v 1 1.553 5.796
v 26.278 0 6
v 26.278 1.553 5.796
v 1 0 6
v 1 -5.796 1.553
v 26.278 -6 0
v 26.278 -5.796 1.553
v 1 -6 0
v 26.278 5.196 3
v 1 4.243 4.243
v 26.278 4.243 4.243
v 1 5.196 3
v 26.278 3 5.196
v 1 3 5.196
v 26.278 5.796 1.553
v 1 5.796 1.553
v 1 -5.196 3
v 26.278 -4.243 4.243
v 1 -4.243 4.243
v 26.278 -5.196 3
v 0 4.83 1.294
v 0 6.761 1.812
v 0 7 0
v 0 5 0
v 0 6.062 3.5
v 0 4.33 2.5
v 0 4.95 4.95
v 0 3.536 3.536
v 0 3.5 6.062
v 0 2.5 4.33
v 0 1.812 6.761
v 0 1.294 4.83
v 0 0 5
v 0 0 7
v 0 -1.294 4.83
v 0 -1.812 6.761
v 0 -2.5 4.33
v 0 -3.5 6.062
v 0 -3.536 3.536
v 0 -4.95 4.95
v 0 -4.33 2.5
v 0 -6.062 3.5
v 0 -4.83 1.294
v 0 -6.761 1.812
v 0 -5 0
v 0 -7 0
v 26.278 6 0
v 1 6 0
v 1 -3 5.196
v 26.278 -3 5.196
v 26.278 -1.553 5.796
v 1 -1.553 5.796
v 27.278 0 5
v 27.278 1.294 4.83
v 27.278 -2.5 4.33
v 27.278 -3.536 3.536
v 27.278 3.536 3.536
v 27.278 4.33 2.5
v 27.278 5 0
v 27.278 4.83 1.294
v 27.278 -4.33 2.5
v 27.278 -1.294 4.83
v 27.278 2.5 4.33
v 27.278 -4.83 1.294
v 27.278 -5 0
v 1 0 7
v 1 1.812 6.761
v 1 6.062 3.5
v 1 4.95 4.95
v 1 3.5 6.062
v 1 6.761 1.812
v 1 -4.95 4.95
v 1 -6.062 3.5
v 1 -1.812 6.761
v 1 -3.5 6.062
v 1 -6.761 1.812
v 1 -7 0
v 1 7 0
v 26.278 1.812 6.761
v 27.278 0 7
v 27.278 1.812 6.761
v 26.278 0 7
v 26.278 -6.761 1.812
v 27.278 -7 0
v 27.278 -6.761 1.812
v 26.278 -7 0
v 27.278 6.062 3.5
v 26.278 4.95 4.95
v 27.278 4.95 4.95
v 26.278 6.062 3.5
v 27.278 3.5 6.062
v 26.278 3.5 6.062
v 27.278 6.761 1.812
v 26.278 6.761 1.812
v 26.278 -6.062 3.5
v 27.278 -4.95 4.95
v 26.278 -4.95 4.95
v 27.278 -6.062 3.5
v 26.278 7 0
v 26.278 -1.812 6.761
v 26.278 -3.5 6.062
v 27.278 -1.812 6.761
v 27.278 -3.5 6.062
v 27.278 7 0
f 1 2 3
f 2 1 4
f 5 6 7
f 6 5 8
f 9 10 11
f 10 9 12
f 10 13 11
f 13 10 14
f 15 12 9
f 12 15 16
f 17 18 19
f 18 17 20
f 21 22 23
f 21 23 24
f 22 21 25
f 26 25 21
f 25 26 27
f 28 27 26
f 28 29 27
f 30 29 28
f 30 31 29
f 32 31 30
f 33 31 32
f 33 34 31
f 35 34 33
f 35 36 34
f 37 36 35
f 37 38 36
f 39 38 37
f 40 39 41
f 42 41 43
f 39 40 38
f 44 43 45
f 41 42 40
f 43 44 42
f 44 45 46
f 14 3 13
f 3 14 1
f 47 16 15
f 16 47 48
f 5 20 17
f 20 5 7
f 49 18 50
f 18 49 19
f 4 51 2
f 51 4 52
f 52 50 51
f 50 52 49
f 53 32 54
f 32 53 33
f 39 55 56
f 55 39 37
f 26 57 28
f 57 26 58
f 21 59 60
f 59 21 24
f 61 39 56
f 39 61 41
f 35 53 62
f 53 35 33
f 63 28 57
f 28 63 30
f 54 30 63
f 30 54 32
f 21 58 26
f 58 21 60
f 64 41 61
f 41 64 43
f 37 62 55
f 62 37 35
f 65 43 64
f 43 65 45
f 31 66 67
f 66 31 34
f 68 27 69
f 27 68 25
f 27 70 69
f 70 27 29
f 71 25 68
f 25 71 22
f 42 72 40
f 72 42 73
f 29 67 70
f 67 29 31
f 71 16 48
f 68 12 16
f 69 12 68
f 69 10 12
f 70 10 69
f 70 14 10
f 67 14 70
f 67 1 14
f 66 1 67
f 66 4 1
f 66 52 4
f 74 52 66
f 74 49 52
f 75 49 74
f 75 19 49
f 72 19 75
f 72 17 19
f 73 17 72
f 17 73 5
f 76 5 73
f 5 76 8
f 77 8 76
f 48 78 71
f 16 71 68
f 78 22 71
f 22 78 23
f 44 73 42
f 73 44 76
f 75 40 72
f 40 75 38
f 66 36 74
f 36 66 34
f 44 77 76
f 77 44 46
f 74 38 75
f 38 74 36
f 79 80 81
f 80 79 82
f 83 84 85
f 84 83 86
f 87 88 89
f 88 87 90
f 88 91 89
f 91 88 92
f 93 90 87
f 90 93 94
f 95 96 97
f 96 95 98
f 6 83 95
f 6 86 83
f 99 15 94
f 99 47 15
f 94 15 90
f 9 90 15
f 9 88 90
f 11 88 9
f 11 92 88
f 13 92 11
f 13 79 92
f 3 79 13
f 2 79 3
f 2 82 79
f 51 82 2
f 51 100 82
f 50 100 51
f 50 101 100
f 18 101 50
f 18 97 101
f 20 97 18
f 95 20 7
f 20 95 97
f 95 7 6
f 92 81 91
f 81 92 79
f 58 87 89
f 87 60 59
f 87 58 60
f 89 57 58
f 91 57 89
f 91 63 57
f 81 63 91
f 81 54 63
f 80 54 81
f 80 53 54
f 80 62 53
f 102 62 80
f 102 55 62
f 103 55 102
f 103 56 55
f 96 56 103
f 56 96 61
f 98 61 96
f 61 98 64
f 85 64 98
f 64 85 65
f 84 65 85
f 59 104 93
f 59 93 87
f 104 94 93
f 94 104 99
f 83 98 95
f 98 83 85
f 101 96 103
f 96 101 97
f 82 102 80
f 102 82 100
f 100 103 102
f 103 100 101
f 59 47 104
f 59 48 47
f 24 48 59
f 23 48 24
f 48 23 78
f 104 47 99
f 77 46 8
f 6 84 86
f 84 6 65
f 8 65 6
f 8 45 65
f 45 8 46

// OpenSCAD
// file: ../build_environments.scad
// build_environments.scad: modules to build level sections
//

module pool(diameter=10.0, wall_height=2.0, step_width=3.0, connections=[])
{
    difference() {
        union() {
        difference() {
            cylinder(h=0.5,r1=diameter+step_width,r2=diameter+step_width,$fn=48);
            translate([0,0,-0.1])
                cylinder(h=0.7,r1=diameter,r2=diameter,$fn=48);
        }
        difference() {
            cylinder(h=wall_height,r1=diameter+step_width+1.0,r2=diameter+step_width+1.0,$fn=48);
            translate([0,0,-0.1])
                cylinder(h=wall_height+0.2,r1=diameter+step_width,r2=diameter+step_width,$fn=48);
        }
        }
    
        for (c = connections)
        {
            rotate([0,90,0]) {
                angle = atan2(c[1],c[0]);
                rotate([-angle,0,0]) {
                    cylinder(h=diameter+5.0,r1=c[2],r2=c[2],$fn=48);
                }
            }
        }
    }
}

module straight(length=10.0, width=2.0, dy1=0.0, dy2=0.0, dz=0.0)
{
    dims = [0, 0, 0, 0, 0, (dz/length)];
    matrix = [
        [ 1, dims[0], dims[1], 0 ],
        [ dims[2], 1, dims[4], 0 ],
        [ dims[5], dims[3], 1, 0 ],
        [ 0, 0, 0, 1 ]
    ];
    multmatrix(matrix)
    difference() {
        translate([dy1,0,0])
        union() {
            rotate([0,90,0]) {
                difference() {
                    cylinder(h=(length-dy1-dy2),r1=width+1.0,r2=width+1.0,$fn=24);
                    translate([0,0,-0.1])
                        cylinder(h=(length-dy1-dy2+0.2),r1=width,r2=width,$fn=24);
                }
                difference() {
                    cylinder(h=1.0,r1=width+2.0,r2=width+2.0,$fn=24);
                    translate([0,0,-0.1])
                        cylinder(h=1.2,r1=width,r2=width,$fn=24);
                }
                translate([0,0,(length-dy1-dy2)-1.0]) {
                    difference() {
                        cylinder(h=1.0,r1=width+2.0,r2=width+2.0,$fn=24);
                        translate([0,0,-0.1])
                            cylinder(h=1.2,r1=width,r2=width,$fn=24);
                    }
                }
            }
        }
        translate([0,0,-(2*width+4.0)/2])
            cube([3*length,3*length,2*width+4.0],center=true);
    }
}

module curve(p0=[0,0], center=[0,0], dir=1, angle=0.0, width=2.0)
{
    radius = sqrt((p0[0]-center[0])*(p0[0]-center[0]) + (p0[1]-center[1])*(p0[1]-center[1]));
    if (dir == 0) {
        difference() {
            rotate([0,0,-90])
            difference() {
                rotate_extrude(angle = angle, convexity = 10, $fn=32)
                    translate([radius, 0, 0])
                        circle(r = width+1.0,$fn=24);
                rotate([0,0,-1.0])
                    rotate_extrude(angle = angle+2.0, convexity = 10, $fn=32)
                        translate([radius, 0, 0])
                            circle(r = width,$fn=24);
            }
            translate([0,0,-(2*width+4.0)/2])
                cube([5*radius,5*radius,2*width+4.0],center=true);
        }
    }
    else {
        difference() {
            rotate([0,0,90])
            difference() {
                rotate_extrude(angle = -angle, convexity = 10, $fn=32)
                    translate([radius, 0, 0])
                        circle(r = width+1.0,$fn=24);
                rotate([0,0,1.0])
                    rotate_extrude(angle = -angle-2.0, convexity = 10, $fn=32)
                        translate([radius, 0, 0])
                            circle(r = width,$fn=24);
            }
            translate([0,0,-(2*width+4.0)/2])
                cube([5*radius,5*radius,2*width+4.0],center=true);
        }
    }

}

// test pool
//pool(diameter=12.0000, wall_height=3.0000, step_width=3.0000, connections=[[0.0000,-26.0000,2.0000], [23.6074,0.0000,2.0000]]);

// test straight, slope
//straight(length=26.0000, width=2.0000, dy1=11.8322, dy2=6.7082, dz=0.0000);
//straight(length=29.1549, width=12.0000, dy1=0.0000, dy2=0.0000, dz=-15.0000);

// test curve
//curve(p0=[23.6074, 0.0000], center=[23.6074, 5.0000], dir=0, angle=60.1011, width=2.0000);
//curve(p0=[33.6426, 12.4219], center=[37.9771, 9.9295], dir=1, angle=120.4627, width=2.0000);
// main file
use <../build_environments.scad>;
straight(length=27.2780, width=5.0000, dy1=0.0000, dy2=0.0000, dz=0.0000);
